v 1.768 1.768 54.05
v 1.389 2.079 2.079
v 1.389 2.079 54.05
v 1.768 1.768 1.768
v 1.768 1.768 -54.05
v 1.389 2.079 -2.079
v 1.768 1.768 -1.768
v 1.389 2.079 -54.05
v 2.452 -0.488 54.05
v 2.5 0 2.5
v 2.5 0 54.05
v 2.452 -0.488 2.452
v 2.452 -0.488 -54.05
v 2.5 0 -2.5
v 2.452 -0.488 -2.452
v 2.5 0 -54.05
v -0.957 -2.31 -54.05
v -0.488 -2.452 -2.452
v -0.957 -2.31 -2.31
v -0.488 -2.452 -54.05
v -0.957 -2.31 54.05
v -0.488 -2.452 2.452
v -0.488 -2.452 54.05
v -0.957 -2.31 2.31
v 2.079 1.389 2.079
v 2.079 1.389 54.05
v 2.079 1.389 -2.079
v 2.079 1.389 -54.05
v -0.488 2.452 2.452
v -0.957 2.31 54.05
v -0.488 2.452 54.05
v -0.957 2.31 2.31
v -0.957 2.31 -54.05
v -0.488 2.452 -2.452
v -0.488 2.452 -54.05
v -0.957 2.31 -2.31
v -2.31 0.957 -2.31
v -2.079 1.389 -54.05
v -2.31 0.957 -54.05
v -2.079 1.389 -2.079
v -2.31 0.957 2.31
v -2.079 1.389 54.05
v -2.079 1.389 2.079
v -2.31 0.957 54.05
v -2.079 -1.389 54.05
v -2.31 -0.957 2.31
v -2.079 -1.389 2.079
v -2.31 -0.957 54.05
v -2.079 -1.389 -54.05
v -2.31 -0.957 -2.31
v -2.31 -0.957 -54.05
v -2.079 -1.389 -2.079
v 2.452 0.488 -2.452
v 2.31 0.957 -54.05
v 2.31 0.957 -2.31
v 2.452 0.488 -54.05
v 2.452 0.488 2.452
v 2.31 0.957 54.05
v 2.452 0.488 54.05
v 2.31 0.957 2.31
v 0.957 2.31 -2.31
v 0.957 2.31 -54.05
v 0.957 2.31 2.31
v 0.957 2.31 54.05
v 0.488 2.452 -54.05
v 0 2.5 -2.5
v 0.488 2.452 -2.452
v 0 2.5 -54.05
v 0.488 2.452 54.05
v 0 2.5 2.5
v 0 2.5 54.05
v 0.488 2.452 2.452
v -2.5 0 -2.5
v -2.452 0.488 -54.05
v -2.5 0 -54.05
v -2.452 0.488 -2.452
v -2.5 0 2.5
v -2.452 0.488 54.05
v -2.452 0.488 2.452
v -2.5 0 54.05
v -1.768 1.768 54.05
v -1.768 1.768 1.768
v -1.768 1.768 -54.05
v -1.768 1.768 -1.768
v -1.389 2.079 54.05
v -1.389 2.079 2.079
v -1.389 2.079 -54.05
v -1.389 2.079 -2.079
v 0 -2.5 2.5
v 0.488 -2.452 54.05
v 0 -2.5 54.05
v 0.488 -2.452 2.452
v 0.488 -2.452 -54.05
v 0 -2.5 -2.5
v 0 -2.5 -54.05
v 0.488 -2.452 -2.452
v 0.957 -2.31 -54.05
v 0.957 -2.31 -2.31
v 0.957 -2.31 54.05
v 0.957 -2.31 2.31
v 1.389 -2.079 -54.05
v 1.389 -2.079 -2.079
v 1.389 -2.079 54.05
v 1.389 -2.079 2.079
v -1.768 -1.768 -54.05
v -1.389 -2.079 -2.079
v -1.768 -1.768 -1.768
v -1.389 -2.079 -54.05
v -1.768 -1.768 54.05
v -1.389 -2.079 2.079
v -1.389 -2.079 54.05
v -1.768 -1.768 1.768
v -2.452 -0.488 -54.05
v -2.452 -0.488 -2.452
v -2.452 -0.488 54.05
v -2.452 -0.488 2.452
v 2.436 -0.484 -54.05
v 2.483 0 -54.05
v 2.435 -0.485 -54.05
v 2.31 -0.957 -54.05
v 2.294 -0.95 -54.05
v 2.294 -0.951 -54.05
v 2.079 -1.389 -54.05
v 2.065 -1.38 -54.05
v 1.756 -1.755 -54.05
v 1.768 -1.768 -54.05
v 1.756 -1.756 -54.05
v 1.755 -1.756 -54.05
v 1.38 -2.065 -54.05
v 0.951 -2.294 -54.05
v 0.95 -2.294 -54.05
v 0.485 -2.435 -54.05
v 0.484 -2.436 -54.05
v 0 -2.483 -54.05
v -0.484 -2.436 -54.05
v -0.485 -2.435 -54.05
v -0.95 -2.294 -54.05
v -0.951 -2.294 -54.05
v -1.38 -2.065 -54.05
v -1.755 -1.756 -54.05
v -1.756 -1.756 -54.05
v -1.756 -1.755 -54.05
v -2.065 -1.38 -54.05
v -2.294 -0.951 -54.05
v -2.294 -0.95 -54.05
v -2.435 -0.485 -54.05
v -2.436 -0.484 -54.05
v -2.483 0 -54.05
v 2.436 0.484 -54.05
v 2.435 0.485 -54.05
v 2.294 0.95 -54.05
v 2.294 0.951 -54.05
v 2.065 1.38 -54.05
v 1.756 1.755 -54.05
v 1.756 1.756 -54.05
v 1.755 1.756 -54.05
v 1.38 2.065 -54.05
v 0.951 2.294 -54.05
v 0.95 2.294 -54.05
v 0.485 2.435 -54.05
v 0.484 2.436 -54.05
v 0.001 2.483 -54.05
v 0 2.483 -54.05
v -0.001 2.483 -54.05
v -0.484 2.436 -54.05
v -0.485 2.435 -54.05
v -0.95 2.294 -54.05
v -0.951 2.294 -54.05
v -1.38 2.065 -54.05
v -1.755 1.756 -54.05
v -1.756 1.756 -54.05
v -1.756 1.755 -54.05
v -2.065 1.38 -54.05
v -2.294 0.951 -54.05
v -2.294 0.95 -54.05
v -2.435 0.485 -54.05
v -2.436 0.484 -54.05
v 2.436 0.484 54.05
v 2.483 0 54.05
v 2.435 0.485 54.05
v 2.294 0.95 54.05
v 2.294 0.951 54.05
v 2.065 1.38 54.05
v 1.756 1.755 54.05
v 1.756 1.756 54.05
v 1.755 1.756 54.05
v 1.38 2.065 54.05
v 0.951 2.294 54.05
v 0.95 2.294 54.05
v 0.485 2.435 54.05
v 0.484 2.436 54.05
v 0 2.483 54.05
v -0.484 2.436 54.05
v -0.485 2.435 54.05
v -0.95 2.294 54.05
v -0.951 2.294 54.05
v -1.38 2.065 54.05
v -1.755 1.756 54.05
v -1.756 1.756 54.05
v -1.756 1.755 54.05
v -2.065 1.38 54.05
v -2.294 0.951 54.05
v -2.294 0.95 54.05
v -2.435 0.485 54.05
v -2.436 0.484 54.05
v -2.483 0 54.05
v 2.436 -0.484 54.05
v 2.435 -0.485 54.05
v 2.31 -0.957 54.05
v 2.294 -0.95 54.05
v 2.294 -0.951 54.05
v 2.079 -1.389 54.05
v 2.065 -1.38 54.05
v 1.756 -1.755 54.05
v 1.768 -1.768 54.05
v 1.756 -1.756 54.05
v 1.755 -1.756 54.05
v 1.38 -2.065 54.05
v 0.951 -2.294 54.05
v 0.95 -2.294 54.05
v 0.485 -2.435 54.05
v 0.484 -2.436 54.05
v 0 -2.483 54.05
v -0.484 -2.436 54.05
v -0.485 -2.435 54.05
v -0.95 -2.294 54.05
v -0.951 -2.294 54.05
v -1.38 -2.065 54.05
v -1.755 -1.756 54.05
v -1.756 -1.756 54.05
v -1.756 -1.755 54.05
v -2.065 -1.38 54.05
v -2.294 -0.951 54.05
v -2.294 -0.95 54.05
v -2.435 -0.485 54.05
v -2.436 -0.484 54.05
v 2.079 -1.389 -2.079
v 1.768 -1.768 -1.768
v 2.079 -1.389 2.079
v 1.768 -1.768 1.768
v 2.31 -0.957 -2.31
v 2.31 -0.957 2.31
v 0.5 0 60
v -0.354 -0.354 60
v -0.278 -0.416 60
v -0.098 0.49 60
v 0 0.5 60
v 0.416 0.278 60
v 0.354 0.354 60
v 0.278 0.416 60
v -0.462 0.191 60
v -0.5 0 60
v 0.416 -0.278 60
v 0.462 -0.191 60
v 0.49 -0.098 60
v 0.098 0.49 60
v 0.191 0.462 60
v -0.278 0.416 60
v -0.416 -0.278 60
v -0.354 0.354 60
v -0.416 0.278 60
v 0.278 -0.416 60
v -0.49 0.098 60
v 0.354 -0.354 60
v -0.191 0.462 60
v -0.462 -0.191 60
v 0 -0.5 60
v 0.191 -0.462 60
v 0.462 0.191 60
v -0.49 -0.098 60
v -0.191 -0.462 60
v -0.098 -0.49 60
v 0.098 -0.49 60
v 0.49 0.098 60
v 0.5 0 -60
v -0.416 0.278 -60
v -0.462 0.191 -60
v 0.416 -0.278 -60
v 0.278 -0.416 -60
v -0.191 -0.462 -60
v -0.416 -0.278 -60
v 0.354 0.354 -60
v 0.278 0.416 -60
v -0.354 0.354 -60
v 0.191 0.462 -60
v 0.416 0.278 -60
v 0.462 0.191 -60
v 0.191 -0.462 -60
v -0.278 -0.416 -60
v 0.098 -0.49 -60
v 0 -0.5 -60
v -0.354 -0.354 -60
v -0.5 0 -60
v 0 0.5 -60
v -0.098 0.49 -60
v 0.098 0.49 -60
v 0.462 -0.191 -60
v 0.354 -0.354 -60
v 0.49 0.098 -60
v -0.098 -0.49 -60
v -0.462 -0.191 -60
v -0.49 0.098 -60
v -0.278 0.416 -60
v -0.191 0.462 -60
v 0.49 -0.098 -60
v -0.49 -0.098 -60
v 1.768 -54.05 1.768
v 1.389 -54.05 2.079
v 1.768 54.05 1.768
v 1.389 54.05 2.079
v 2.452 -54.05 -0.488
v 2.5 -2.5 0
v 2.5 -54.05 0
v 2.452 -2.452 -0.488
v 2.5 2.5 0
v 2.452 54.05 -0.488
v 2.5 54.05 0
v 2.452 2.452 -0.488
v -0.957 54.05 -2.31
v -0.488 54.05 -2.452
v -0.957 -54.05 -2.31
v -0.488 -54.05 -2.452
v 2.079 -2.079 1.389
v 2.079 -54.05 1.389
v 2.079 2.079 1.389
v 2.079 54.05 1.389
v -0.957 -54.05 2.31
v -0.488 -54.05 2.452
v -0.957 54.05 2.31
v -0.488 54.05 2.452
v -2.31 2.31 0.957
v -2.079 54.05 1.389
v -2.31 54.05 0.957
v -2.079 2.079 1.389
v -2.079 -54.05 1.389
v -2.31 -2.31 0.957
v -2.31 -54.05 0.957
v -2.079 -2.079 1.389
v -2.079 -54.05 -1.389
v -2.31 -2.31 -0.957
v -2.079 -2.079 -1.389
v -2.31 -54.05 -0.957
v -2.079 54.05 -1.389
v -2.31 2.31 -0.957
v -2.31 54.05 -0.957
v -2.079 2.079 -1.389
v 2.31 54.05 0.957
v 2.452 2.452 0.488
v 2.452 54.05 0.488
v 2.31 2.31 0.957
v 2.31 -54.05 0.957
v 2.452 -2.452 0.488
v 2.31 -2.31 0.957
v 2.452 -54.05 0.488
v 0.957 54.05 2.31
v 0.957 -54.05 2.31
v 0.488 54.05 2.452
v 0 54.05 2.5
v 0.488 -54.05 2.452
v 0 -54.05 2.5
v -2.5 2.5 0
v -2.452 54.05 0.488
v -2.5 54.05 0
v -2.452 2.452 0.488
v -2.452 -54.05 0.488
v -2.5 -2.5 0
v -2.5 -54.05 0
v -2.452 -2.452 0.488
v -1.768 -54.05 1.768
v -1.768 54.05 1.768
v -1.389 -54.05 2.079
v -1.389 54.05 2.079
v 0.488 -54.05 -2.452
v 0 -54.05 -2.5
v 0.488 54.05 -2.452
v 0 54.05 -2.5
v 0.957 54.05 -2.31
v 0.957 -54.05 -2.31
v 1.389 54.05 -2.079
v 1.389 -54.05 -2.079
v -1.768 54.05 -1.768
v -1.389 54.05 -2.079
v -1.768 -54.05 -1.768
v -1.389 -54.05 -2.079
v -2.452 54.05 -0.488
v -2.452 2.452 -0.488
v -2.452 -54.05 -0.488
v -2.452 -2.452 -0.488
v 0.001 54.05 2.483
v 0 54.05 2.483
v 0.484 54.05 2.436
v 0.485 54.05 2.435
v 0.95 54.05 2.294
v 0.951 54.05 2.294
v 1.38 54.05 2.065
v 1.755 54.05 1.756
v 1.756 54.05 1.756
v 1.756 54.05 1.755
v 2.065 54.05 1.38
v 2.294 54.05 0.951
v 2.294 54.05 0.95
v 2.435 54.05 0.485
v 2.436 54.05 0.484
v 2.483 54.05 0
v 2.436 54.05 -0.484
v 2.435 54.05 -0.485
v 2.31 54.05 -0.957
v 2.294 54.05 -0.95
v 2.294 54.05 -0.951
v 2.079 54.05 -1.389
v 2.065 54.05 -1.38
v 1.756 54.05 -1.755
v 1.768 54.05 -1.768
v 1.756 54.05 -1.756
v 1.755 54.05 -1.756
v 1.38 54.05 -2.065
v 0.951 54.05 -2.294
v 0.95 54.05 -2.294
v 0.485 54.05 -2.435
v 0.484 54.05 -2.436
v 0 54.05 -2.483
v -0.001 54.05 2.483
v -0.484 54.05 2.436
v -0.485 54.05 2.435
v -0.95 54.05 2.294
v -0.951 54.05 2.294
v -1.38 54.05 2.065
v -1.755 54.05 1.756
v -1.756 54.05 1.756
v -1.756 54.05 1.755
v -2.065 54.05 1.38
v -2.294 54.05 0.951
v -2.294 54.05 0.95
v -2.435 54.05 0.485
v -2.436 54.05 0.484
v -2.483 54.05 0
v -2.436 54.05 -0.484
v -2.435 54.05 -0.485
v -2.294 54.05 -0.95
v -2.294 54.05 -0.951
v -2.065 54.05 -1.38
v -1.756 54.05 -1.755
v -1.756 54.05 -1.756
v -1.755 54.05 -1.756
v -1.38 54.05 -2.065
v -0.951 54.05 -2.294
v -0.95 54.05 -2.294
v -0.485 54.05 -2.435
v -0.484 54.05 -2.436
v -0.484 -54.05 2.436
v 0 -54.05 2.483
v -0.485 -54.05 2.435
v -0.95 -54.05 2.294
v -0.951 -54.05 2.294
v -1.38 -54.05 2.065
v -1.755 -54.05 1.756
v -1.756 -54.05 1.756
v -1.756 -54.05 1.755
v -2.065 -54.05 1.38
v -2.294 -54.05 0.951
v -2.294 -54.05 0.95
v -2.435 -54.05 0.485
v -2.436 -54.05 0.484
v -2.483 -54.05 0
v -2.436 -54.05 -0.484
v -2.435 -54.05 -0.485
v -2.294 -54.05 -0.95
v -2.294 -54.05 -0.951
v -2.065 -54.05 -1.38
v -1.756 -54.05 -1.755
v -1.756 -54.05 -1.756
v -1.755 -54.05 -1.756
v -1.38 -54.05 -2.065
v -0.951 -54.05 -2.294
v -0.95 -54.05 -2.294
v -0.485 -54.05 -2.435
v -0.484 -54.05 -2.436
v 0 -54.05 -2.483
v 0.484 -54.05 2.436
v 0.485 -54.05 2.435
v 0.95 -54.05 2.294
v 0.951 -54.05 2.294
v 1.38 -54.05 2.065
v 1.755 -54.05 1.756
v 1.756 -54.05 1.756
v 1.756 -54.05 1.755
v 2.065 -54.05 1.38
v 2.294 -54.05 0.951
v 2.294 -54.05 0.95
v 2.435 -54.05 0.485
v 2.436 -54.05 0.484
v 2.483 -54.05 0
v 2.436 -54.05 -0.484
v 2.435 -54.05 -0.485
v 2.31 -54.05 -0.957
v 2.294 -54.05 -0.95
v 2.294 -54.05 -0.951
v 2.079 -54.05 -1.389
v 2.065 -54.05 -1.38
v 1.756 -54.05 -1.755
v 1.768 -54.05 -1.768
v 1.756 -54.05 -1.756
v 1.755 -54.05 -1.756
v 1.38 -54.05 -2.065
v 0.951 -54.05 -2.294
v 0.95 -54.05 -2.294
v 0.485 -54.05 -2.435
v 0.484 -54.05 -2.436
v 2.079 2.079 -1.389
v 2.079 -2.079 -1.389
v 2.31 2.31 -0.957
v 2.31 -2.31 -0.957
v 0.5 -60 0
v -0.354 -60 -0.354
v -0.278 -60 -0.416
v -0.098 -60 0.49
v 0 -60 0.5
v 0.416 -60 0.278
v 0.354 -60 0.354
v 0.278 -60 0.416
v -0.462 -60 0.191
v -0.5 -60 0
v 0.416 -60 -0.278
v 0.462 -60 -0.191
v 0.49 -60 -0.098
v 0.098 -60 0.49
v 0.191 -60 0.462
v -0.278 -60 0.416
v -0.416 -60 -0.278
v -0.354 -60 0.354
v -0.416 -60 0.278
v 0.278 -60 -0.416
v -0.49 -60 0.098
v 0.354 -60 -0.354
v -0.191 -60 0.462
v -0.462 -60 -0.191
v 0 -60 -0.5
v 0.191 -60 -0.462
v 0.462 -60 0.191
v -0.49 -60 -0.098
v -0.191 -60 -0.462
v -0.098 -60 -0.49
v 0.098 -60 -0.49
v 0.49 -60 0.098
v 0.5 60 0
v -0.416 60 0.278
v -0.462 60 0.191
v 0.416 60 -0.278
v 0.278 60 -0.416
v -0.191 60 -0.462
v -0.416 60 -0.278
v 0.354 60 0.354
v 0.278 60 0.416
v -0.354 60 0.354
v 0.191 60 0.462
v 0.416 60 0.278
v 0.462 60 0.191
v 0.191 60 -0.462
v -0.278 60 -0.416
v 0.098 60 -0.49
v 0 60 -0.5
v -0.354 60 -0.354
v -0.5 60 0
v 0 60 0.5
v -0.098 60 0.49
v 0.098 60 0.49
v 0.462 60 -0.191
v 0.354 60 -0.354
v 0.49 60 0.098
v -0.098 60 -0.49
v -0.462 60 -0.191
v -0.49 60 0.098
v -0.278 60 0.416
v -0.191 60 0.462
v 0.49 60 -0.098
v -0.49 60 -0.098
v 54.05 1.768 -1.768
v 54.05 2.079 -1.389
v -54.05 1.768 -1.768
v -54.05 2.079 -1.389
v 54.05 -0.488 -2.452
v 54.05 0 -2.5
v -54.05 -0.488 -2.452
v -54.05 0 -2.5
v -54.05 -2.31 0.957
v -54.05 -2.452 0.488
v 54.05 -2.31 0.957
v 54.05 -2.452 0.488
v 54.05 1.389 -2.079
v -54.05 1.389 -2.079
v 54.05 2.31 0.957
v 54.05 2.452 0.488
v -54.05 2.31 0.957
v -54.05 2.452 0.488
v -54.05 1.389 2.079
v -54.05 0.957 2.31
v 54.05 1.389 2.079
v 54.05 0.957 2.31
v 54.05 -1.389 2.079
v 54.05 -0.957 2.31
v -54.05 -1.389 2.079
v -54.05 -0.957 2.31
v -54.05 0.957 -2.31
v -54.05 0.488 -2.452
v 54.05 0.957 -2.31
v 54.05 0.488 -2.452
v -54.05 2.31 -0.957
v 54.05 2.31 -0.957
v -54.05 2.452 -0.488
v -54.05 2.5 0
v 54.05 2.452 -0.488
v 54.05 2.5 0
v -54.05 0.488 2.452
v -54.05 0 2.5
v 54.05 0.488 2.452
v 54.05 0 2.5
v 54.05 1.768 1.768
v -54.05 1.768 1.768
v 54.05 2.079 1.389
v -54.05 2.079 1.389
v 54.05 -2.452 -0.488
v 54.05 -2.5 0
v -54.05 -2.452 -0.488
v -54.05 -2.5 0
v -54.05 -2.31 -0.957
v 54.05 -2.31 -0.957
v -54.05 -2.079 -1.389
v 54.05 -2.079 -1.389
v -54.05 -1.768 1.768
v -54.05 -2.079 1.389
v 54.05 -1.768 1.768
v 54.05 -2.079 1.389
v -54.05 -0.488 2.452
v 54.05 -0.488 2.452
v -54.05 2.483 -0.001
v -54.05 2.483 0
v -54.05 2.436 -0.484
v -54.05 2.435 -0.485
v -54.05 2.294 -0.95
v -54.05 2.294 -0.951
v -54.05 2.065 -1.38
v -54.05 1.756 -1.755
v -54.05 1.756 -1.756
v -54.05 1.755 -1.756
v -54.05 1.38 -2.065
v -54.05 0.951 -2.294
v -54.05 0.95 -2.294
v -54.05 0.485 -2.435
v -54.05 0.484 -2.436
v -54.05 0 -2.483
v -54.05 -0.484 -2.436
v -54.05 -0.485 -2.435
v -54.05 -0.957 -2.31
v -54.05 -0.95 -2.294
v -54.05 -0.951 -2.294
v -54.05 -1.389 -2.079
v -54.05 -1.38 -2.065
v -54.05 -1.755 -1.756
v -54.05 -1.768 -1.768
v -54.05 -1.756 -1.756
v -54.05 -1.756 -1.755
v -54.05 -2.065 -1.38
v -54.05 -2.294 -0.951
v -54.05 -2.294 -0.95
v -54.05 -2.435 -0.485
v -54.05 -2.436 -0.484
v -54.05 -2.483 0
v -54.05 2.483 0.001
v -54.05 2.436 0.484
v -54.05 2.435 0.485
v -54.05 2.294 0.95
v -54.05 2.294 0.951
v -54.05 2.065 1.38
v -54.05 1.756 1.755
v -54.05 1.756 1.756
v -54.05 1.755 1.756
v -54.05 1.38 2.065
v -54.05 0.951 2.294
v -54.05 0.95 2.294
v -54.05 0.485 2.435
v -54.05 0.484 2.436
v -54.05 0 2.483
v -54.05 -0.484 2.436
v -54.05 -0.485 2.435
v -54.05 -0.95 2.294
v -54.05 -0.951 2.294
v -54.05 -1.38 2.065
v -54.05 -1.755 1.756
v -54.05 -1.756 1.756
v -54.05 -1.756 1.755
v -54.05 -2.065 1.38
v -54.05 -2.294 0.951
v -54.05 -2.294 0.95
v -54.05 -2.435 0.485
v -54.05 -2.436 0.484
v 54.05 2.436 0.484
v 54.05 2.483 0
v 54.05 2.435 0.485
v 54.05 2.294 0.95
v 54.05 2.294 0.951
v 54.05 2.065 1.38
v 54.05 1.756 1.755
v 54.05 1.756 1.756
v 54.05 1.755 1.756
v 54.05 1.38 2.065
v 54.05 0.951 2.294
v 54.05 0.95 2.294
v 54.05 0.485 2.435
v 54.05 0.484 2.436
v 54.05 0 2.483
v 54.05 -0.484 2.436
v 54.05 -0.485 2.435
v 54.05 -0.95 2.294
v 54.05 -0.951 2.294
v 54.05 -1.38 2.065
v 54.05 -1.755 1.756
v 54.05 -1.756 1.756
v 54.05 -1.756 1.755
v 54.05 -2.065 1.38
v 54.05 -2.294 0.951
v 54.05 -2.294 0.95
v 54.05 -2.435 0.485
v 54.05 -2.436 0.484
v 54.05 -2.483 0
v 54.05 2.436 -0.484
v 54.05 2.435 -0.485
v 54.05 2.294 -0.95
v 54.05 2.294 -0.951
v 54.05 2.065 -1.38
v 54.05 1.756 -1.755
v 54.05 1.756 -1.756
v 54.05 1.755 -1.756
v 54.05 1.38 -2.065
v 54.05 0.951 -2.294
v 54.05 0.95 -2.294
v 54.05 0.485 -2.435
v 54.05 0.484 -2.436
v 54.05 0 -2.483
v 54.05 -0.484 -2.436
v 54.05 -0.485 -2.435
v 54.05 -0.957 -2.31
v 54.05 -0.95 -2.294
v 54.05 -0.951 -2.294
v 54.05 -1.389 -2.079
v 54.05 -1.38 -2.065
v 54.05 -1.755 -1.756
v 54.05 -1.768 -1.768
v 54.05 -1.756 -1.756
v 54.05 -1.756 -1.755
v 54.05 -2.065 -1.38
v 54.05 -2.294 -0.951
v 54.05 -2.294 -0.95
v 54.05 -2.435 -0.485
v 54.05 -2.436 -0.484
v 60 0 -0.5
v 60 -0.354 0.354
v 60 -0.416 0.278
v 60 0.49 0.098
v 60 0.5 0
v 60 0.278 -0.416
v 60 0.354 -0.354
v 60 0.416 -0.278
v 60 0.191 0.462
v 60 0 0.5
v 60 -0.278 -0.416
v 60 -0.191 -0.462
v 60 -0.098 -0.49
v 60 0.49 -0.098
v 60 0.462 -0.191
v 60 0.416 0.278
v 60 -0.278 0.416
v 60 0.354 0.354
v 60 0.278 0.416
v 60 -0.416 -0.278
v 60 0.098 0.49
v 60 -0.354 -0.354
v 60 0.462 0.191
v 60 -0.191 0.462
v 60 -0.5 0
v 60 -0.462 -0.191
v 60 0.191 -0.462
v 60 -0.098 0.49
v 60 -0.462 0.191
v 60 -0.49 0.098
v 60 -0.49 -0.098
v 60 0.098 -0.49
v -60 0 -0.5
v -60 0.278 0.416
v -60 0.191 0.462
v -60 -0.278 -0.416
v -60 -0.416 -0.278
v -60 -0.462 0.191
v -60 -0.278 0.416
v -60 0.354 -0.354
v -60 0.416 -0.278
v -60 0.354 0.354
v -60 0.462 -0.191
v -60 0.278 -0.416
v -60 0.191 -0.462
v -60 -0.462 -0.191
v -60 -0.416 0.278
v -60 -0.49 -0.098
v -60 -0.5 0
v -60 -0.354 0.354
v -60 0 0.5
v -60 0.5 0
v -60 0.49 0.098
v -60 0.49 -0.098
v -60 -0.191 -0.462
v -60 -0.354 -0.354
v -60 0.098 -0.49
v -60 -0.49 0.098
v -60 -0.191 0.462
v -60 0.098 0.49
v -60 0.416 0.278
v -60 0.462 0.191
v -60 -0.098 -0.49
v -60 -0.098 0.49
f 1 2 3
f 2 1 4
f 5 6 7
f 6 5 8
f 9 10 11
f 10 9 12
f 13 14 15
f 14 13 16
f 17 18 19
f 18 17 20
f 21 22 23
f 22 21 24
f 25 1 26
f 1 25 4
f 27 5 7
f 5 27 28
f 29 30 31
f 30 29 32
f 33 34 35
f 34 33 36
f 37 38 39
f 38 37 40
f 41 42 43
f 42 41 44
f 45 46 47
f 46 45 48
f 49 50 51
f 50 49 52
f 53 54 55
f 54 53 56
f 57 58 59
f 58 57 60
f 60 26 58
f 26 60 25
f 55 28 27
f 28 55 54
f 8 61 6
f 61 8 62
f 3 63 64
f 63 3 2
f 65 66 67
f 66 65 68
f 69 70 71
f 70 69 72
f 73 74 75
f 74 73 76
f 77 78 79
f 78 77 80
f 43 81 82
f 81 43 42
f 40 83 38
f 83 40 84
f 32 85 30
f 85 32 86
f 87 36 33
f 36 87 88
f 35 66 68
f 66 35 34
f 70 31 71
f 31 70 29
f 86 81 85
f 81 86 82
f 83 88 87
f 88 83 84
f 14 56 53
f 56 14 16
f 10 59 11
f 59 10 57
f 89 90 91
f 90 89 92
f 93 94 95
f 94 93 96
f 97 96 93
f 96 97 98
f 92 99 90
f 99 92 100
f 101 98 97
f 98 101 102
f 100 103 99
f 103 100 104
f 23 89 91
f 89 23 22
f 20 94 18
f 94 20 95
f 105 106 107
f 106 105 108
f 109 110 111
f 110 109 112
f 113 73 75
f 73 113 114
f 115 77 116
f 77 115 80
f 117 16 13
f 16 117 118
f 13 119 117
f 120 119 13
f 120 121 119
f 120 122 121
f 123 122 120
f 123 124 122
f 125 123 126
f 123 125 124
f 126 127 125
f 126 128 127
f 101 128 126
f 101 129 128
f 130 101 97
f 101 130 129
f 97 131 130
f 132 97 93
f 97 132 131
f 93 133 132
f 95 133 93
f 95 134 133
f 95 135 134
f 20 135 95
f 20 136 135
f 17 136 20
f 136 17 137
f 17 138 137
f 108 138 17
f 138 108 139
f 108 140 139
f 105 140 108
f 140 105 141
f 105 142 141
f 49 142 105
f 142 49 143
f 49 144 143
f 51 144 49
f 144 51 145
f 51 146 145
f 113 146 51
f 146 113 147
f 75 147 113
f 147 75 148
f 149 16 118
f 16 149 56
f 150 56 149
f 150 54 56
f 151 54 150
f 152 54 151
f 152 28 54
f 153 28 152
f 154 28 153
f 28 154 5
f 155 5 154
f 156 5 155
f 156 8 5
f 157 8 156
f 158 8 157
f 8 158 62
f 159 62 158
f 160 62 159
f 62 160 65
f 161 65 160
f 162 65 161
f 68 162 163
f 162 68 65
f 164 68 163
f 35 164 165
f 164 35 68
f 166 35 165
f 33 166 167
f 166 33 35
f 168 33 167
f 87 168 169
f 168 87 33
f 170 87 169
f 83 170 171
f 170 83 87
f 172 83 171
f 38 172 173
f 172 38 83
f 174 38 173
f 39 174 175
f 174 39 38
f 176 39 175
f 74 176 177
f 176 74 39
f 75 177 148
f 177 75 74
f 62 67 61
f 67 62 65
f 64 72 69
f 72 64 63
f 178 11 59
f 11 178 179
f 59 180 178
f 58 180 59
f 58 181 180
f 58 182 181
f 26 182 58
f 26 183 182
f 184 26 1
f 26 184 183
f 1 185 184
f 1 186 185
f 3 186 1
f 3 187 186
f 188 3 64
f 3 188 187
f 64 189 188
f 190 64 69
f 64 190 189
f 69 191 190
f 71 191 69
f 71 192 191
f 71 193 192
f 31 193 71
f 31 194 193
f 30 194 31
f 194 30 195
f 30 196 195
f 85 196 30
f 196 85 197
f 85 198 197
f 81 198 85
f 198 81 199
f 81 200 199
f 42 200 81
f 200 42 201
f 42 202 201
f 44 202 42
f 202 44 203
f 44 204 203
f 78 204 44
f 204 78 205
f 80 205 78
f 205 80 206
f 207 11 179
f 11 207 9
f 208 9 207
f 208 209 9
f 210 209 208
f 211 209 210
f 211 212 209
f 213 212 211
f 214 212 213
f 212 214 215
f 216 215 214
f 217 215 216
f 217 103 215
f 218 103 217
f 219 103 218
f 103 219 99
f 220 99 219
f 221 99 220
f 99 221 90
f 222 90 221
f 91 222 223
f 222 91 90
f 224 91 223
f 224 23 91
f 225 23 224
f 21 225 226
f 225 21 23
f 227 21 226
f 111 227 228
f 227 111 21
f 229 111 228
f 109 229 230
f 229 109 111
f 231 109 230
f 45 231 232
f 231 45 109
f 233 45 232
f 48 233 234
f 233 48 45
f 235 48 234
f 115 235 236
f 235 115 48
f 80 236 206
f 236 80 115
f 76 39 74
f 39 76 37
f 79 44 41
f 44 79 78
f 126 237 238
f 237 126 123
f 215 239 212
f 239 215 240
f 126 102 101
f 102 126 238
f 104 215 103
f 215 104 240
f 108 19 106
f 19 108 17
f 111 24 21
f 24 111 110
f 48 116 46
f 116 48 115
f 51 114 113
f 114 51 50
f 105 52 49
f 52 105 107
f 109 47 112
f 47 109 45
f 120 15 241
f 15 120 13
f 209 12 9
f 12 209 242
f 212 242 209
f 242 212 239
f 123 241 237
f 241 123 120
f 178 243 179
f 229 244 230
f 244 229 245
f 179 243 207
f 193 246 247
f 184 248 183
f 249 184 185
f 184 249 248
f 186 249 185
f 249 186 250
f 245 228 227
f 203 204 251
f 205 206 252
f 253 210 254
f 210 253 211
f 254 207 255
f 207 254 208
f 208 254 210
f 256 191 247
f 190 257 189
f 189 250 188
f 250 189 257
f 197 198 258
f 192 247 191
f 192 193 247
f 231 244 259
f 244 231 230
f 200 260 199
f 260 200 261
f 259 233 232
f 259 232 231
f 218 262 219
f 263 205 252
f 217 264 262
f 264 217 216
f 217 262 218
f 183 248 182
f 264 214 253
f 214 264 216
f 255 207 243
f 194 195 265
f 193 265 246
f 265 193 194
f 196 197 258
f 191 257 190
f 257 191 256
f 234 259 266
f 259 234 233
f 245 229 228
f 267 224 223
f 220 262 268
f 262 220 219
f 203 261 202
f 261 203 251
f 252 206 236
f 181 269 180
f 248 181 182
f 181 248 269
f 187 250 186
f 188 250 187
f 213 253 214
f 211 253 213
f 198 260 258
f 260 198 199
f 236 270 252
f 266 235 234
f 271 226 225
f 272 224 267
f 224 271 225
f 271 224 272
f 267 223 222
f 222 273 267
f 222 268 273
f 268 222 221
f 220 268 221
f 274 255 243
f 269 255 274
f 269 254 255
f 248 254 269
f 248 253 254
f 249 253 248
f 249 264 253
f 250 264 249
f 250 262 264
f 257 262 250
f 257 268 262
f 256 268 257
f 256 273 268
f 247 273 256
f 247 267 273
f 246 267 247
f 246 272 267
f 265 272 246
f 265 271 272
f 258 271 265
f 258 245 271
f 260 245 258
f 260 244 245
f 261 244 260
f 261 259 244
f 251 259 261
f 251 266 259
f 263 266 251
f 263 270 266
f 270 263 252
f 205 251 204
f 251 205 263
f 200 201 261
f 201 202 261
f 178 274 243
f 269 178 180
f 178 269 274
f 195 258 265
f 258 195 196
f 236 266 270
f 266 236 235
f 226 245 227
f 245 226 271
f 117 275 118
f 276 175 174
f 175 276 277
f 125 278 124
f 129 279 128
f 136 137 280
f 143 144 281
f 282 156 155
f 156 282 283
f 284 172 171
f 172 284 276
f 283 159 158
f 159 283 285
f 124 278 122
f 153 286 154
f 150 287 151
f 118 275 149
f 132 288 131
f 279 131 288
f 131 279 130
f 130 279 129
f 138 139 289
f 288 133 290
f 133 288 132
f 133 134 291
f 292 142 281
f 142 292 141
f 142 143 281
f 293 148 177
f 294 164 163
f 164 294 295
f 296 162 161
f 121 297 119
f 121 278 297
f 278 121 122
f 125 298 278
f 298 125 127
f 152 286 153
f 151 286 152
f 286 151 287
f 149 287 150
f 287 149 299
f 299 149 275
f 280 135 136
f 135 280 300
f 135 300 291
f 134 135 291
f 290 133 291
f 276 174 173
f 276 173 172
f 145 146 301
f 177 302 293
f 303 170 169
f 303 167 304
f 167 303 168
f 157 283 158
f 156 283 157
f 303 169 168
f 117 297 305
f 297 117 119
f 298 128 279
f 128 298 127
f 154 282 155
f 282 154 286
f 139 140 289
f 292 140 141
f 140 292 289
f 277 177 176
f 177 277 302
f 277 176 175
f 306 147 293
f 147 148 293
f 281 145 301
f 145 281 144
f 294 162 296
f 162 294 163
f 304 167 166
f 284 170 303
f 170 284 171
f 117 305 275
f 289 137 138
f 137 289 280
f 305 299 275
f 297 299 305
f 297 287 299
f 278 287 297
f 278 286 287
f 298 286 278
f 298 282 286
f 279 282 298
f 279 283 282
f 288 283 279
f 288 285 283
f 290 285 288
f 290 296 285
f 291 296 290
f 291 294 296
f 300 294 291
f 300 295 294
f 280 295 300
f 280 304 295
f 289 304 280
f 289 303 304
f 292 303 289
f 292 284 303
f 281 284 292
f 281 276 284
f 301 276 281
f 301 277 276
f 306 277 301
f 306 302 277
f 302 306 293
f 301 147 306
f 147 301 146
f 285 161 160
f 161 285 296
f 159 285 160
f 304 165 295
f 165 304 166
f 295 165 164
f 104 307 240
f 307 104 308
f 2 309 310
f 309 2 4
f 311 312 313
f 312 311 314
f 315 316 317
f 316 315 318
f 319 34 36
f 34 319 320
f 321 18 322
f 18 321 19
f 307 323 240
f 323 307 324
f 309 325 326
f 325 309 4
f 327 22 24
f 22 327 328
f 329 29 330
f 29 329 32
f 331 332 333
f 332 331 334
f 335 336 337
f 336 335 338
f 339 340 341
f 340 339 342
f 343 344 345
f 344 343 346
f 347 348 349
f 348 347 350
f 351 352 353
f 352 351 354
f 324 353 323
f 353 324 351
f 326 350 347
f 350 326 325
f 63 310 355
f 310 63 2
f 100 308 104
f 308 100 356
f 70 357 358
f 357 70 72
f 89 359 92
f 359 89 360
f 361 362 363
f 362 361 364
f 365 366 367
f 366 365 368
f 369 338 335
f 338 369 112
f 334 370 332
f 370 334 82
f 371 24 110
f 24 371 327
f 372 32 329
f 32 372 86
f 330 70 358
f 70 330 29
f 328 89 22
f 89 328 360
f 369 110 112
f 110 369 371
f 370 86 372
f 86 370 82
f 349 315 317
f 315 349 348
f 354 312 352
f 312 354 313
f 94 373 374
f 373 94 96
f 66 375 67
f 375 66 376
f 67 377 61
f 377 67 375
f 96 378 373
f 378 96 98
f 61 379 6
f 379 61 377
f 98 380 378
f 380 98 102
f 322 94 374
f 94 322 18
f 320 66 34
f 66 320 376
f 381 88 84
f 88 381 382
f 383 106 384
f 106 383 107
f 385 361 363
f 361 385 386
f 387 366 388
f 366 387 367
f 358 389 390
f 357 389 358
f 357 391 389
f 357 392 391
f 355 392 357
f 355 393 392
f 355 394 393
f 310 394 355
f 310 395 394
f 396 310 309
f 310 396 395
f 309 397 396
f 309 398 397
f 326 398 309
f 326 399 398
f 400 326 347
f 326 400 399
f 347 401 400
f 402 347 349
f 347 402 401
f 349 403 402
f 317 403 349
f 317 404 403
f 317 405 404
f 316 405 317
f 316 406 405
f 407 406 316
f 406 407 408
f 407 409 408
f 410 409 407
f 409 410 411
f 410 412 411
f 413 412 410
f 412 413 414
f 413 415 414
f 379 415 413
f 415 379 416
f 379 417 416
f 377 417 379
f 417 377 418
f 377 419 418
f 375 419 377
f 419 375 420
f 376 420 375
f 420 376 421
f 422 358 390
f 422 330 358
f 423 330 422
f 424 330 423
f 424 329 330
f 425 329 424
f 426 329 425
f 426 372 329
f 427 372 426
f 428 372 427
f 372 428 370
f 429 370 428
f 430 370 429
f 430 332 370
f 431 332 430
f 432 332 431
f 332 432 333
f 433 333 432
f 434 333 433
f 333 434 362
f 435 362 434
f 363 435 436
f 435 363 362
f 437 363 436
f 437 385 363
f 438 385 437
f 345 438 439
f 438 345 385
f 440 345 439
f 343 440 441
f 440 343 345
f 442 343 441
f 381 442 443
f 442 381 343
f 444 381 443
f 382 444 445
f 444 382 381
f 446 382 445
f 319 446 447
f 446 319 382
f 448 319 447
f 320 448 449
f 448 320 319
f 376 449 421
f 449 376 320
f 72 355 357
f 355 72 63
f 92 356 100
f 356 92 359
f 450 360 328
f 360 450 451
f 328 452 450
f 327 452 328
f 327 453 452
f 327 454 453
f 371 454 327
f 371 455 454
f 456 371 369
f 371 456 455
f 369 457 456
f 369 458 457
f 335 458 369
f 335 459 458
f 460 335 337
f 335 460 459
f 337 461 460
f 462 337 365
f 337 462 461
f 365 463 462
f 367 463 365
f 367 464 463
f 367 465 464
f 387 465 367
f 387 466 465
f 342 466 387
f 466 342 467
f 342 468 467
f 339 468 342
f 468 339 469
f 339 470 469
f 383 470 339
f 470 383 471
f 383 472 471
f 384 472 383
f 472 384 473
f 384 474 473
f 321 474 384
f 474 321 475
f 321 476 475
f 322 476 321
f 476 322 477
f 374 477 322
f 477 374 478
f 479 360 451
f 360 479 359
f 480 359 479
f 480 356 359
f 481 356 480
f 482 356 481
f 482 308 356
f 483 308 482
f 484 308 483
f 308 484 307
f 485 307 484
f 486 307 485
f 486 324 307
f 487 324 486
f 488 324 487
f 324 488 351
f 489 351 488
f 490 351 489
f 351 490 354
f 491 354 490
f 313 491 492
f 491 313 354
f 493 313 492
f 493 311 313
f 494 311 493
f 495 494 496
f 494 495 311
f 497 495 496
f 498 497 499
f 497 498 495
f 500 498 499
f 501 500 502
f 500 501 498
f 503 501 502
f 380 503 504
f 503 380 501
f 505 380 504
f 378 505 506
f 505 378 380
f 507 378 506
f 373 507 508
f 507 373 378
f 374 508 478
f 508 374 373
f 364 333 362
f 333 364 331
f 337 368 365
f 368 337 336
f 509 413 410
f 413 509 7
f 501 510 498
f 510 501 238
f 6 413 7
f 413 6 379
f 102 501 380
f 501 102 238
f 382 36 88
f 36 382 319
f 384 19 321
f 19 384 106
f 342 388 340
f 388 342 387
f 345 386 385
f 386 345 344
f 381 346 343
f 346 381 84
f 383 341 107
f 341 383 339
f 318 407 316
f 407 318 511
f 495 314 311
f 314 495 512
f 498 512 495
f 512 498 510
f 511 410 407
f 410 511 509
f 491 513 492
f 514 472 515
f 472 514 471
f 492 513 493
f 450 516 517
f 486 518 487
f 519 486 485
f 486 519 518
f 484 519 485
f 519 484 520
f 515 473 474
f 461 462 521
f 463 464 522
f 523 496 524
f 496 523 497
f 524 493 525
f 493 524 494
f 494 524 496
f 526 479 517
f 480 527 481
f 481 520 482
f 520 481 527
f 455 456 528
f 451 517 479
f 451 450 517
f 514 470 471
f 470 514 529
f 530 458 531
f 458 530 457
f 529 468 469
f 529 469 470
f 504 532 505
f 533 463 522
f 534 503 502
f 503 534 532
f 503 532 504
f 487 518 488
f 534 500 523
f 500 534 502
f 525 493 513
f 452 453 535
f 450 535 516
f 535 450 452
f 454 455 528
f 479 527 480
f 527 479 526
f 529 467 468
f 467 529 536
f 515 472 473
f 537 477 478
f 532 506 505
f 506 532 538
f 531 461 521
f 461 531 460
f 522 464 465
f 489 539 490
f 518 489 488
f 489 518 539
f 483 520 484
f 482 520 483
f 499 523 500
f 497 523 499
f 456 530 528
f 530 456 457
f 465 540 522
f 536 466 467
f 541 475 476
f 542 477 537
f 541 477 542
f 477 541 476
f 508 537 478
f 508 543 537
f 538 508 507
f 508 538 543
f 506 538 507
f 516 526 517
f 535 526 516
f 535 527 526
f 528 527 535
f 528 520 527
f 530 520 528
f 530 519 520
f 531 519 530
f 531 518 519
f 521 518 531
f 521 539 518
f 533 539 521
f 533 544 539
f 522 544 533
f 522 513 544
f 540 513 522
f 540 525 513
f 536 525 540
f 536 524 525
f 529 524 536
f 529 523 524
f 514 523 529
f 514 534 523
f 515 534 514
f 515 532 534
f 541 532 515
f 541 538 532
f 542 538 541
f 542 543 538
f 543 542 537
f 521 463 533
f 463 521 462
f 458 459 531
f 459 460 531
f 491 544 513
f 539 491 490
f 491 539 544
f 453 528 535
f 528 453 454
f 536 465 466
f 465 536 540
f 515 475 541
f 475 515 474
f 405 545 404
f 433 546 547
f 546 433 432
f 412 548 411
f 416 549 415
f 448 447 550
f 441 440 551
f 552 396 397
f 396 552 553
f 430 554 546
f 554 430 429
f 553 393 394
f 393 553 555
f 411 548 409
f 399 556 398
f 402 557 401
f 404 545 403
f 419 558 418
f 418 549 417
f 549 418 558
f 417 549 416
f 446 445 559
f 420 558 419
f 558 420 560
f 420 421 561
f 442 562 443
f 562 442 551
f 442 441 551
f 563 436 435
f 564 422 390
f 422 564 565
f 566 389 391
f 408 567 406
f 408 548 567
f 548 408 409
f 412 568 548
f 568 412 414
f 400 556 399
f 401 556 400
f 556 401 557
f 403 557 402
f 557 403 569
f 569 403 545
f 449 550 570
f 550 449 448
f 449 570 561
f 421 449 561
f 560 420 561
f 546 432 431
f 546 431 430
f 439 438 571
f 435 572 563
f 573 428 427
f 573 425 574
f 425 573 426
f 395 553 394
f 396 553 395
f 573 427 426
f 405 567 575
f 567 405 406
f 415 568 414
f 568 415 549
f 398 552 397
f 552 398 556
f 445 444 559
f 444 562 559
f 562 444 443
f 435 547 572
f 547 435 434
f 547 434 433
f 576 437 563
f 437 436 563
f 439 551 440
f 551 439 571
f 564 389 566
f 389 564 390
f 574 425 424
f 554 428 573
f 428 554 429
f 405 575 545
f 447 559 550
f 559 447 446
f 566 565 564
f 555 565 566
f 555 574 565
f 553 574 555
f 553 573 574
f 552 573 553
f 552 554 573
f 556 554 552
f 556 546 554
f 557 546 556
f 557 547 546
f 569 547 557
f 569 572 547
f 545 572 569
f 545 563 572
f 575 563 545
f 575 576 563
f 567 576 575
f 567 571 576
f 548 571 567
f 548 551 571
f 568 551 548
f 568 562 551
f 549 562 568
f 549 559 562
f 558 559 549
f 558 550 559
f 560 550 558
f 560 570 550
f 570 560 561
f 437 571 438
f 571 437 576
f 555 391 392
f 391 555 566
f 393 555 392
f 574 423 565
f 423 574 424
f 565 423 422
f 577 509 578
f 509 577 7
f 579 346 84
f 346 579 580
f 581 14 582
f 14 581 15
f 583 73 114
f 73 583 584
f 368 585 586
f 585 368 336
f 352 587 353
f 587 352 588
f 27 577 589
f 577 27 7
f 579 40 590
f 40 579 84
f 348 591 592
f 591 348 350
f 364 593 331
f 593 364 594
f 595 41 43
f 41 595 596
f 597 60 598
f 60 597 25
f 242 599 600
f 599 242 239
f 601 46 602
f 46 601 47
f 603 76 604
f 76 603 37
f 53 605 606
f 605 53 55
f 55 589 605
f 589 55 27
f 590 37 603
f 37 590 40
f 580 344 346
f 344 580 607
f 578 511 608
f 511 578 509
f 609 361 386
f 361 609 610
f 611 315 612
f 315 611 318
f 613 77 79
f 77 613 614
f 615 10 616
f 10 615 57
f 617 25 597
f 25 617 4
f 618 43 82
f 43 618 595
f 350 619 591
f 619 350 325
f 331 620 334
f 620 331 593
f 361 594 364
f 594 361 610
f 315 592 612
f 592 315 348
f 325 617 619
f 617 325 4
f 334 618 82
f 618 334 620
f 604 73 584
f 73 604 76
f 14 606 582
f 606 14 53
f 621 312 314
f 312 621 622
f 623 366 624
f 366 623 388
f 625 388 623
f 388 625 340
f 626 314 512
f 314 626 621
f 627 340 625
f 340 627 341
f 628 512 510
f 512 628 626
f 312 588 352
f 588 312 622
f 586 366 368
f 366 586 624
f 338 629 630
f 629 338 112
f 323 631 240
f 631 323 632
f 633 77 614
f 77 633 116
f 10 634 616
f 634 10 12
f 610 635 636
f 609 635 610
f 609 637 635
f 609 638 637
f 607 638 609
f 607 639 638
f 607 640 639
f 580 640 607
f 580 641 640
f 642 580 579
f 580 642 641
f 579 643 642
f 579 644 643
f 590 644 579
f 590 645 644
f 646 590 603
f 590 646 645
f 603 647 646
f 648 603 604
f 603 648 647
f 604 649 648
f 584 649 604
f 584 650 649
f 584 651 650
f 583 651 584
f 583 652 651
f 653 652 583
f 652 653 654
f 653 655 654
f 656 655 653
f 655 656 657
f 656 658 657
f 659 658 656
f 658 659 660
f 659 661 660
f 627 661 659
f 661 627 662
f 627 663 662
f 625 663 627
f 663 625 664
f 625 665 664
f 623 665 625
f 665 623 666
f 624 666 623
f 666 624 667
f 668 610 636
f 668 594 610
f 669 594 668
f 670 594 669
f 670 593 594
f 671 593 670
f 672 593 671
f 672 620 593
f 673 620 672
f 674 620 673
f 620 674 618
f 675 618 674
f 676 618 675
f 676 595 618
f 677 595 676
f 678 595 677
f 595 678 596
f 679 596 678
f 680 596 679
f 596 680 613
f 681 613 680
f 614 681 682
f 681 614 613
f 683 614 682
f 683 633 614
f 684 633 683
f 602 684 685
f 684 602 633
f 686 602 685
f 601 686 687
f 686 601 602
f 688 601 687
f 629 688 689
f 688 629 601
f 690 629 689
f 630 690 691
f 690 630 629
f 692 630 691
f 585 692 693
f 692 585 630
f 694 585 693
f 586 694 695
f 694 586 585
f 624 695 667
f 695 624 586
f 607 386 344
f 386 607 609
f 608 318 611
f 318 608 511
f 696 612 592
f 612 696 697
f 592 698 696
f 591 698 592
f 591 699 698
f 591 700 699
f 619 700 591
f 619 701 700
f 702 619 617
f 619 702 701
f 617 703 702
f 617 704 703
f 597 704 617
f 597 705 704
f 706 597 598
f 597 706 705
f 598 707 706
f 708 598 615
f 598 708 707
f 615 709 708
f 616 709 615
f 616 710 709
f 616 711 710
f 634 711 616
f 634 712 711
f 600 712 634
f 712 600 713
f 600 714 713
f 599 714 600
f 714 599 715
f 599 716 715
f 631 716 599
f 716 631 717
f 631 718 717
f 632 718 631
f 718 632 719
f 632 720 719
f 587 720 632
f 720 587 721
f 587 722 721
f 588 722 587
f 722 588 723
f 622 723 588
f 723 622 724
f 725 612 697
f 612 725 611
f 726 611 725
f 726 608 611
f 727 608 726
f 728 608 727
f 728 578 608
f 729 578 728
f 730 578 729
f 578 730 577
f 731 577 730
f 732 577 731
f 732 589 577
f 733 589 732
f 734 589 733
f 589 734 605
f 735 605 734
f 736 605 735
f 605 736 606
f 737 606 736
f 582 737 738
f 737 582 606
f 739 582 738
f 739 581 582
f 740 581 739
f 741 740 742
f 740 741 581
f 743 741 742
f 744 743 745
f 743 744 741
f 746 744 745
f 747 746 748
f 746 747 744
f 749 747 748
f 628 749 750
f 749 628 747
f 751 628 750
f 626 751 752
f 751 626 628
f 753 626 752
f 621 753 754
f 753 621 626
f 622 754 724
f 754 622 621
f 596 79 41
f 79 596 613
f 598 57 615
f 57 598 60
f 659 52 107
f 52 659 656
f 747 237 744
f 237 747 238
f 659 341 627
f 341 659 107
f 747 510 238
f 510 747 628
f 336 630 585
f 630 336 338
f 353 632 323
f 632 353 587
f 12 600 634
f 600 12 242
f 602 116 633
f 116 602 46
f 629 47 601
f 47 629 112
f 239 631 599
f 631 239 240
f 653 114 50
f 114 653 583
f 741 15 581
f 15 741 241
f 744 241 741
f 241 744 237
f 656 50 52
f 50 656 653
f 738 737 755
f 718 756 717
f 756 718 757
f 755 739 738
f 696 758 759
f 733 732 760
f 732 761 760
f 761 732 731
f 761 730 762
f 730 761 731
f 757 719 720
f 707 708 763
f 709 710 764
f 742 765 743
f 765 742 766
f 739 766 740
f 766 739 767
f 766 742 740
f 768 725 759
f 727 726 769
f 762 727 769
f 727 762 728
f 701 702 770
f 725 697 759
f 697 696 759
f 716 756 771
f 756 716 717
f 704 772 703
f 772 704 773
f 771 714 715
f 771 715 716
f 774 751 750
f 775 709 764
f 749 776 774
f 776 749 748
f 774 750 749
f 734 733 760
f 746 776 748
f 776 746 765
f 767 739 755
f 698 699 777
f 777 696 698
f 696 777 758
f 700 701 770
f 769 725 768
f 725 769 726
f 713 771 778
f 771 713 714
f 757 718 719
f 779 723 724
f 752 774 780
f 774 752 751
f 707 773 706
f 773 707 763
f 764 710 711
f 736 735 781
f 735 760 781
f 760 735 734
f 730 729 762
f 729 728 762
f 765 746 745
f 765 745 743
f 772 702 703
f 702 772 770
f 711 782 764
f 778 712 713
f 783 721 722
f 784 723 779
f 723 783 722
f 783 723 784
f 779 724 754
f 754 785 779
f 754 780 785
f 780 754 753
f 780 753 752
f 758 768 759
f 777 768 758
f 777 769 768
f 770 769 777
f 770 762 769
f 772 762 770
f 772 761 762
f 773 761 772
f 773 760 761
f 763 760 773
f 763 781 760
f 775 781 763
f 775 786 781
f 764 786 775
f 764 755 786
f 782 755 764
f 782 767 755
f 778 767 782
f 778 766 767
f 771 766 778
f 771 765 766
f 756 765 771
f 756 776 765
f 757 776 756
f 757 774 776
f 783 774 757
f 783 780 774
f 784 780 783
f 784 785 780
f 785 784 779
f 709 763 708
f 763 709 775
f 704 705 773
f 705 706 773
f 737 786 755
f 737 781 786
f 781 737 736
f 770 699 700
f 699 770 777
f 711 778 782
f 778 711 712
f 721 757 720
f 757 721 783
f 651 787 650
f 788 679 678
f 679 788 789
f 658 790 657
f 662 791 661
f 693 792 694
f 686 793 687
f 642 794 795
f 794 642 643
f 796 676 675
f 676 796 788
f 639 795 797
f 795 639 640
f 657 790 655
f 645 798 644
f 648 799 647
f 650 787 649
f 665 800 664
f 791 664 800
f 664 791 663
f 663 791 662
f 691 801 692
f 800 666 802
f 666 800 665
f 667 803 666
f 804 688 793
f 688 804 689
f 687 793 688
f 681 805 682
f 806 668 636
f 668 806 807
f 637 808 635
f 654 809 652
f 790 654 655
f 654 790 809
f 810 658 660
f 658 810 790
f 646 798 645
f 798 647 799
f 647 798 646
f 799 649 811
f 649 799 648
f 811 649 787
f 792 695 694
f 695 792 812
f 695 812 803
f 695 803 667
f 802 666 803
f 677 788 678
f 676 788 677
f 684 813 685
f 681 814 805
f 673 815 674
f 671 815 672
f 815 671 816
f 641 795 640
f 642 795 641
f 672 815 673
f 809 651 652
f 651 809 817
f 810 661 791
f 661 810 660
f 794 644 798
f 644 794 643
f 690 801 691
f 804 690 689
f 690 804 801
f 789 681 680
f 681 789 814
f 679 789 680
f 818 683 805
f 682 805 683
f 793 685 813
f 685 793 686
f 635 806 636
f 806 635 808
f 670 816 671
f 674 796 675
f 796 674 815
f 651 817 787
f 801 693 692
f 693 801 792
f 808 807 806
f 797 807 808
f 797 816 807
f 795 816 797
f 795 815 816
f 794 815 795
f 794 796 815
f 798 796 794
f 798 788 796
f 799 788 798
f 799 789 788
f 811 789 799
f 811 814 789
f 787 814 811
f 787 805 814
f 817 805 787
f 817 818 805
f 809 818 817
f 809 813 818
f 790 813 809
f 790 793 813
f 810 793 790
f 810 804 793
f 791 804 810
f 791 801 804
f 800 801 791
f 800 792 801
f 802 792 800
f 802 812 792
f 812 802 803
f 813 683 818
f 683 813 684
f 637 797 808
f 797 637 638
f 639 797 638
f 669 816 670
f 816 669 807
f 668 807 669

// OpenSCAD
// Increase the resolution of default shapes
$fa = 5; // Minimum angle for fragments [degrees]
$fs = 0.5; // Minimum fragment size [mm]

thickness = 5;
length = 120;

tip_len = 6;

module aspa() {
    cylinder(r=thickness/2,h=length-2*tip_len+0.1,center=true);
    translate([0,0,(length-2*tip_len)/2]) cylinder(r1=thickness/2,r2=0.5,h=tip_len);
    translate([0,0,-(length-2*tip_len)/2]) rotate([180,0,0]) cylinder(r1=thickness/2,r2=0.5,h=tip_len);
}

module cross() {
    rotate([0,0,0]) aspa();
    rotate([90,0,0]) aspa();
    rotate([0,90,0]) aspa();
}

//rotate([33.3333,0,0]) rotate([0,45,0]) 
cross();
